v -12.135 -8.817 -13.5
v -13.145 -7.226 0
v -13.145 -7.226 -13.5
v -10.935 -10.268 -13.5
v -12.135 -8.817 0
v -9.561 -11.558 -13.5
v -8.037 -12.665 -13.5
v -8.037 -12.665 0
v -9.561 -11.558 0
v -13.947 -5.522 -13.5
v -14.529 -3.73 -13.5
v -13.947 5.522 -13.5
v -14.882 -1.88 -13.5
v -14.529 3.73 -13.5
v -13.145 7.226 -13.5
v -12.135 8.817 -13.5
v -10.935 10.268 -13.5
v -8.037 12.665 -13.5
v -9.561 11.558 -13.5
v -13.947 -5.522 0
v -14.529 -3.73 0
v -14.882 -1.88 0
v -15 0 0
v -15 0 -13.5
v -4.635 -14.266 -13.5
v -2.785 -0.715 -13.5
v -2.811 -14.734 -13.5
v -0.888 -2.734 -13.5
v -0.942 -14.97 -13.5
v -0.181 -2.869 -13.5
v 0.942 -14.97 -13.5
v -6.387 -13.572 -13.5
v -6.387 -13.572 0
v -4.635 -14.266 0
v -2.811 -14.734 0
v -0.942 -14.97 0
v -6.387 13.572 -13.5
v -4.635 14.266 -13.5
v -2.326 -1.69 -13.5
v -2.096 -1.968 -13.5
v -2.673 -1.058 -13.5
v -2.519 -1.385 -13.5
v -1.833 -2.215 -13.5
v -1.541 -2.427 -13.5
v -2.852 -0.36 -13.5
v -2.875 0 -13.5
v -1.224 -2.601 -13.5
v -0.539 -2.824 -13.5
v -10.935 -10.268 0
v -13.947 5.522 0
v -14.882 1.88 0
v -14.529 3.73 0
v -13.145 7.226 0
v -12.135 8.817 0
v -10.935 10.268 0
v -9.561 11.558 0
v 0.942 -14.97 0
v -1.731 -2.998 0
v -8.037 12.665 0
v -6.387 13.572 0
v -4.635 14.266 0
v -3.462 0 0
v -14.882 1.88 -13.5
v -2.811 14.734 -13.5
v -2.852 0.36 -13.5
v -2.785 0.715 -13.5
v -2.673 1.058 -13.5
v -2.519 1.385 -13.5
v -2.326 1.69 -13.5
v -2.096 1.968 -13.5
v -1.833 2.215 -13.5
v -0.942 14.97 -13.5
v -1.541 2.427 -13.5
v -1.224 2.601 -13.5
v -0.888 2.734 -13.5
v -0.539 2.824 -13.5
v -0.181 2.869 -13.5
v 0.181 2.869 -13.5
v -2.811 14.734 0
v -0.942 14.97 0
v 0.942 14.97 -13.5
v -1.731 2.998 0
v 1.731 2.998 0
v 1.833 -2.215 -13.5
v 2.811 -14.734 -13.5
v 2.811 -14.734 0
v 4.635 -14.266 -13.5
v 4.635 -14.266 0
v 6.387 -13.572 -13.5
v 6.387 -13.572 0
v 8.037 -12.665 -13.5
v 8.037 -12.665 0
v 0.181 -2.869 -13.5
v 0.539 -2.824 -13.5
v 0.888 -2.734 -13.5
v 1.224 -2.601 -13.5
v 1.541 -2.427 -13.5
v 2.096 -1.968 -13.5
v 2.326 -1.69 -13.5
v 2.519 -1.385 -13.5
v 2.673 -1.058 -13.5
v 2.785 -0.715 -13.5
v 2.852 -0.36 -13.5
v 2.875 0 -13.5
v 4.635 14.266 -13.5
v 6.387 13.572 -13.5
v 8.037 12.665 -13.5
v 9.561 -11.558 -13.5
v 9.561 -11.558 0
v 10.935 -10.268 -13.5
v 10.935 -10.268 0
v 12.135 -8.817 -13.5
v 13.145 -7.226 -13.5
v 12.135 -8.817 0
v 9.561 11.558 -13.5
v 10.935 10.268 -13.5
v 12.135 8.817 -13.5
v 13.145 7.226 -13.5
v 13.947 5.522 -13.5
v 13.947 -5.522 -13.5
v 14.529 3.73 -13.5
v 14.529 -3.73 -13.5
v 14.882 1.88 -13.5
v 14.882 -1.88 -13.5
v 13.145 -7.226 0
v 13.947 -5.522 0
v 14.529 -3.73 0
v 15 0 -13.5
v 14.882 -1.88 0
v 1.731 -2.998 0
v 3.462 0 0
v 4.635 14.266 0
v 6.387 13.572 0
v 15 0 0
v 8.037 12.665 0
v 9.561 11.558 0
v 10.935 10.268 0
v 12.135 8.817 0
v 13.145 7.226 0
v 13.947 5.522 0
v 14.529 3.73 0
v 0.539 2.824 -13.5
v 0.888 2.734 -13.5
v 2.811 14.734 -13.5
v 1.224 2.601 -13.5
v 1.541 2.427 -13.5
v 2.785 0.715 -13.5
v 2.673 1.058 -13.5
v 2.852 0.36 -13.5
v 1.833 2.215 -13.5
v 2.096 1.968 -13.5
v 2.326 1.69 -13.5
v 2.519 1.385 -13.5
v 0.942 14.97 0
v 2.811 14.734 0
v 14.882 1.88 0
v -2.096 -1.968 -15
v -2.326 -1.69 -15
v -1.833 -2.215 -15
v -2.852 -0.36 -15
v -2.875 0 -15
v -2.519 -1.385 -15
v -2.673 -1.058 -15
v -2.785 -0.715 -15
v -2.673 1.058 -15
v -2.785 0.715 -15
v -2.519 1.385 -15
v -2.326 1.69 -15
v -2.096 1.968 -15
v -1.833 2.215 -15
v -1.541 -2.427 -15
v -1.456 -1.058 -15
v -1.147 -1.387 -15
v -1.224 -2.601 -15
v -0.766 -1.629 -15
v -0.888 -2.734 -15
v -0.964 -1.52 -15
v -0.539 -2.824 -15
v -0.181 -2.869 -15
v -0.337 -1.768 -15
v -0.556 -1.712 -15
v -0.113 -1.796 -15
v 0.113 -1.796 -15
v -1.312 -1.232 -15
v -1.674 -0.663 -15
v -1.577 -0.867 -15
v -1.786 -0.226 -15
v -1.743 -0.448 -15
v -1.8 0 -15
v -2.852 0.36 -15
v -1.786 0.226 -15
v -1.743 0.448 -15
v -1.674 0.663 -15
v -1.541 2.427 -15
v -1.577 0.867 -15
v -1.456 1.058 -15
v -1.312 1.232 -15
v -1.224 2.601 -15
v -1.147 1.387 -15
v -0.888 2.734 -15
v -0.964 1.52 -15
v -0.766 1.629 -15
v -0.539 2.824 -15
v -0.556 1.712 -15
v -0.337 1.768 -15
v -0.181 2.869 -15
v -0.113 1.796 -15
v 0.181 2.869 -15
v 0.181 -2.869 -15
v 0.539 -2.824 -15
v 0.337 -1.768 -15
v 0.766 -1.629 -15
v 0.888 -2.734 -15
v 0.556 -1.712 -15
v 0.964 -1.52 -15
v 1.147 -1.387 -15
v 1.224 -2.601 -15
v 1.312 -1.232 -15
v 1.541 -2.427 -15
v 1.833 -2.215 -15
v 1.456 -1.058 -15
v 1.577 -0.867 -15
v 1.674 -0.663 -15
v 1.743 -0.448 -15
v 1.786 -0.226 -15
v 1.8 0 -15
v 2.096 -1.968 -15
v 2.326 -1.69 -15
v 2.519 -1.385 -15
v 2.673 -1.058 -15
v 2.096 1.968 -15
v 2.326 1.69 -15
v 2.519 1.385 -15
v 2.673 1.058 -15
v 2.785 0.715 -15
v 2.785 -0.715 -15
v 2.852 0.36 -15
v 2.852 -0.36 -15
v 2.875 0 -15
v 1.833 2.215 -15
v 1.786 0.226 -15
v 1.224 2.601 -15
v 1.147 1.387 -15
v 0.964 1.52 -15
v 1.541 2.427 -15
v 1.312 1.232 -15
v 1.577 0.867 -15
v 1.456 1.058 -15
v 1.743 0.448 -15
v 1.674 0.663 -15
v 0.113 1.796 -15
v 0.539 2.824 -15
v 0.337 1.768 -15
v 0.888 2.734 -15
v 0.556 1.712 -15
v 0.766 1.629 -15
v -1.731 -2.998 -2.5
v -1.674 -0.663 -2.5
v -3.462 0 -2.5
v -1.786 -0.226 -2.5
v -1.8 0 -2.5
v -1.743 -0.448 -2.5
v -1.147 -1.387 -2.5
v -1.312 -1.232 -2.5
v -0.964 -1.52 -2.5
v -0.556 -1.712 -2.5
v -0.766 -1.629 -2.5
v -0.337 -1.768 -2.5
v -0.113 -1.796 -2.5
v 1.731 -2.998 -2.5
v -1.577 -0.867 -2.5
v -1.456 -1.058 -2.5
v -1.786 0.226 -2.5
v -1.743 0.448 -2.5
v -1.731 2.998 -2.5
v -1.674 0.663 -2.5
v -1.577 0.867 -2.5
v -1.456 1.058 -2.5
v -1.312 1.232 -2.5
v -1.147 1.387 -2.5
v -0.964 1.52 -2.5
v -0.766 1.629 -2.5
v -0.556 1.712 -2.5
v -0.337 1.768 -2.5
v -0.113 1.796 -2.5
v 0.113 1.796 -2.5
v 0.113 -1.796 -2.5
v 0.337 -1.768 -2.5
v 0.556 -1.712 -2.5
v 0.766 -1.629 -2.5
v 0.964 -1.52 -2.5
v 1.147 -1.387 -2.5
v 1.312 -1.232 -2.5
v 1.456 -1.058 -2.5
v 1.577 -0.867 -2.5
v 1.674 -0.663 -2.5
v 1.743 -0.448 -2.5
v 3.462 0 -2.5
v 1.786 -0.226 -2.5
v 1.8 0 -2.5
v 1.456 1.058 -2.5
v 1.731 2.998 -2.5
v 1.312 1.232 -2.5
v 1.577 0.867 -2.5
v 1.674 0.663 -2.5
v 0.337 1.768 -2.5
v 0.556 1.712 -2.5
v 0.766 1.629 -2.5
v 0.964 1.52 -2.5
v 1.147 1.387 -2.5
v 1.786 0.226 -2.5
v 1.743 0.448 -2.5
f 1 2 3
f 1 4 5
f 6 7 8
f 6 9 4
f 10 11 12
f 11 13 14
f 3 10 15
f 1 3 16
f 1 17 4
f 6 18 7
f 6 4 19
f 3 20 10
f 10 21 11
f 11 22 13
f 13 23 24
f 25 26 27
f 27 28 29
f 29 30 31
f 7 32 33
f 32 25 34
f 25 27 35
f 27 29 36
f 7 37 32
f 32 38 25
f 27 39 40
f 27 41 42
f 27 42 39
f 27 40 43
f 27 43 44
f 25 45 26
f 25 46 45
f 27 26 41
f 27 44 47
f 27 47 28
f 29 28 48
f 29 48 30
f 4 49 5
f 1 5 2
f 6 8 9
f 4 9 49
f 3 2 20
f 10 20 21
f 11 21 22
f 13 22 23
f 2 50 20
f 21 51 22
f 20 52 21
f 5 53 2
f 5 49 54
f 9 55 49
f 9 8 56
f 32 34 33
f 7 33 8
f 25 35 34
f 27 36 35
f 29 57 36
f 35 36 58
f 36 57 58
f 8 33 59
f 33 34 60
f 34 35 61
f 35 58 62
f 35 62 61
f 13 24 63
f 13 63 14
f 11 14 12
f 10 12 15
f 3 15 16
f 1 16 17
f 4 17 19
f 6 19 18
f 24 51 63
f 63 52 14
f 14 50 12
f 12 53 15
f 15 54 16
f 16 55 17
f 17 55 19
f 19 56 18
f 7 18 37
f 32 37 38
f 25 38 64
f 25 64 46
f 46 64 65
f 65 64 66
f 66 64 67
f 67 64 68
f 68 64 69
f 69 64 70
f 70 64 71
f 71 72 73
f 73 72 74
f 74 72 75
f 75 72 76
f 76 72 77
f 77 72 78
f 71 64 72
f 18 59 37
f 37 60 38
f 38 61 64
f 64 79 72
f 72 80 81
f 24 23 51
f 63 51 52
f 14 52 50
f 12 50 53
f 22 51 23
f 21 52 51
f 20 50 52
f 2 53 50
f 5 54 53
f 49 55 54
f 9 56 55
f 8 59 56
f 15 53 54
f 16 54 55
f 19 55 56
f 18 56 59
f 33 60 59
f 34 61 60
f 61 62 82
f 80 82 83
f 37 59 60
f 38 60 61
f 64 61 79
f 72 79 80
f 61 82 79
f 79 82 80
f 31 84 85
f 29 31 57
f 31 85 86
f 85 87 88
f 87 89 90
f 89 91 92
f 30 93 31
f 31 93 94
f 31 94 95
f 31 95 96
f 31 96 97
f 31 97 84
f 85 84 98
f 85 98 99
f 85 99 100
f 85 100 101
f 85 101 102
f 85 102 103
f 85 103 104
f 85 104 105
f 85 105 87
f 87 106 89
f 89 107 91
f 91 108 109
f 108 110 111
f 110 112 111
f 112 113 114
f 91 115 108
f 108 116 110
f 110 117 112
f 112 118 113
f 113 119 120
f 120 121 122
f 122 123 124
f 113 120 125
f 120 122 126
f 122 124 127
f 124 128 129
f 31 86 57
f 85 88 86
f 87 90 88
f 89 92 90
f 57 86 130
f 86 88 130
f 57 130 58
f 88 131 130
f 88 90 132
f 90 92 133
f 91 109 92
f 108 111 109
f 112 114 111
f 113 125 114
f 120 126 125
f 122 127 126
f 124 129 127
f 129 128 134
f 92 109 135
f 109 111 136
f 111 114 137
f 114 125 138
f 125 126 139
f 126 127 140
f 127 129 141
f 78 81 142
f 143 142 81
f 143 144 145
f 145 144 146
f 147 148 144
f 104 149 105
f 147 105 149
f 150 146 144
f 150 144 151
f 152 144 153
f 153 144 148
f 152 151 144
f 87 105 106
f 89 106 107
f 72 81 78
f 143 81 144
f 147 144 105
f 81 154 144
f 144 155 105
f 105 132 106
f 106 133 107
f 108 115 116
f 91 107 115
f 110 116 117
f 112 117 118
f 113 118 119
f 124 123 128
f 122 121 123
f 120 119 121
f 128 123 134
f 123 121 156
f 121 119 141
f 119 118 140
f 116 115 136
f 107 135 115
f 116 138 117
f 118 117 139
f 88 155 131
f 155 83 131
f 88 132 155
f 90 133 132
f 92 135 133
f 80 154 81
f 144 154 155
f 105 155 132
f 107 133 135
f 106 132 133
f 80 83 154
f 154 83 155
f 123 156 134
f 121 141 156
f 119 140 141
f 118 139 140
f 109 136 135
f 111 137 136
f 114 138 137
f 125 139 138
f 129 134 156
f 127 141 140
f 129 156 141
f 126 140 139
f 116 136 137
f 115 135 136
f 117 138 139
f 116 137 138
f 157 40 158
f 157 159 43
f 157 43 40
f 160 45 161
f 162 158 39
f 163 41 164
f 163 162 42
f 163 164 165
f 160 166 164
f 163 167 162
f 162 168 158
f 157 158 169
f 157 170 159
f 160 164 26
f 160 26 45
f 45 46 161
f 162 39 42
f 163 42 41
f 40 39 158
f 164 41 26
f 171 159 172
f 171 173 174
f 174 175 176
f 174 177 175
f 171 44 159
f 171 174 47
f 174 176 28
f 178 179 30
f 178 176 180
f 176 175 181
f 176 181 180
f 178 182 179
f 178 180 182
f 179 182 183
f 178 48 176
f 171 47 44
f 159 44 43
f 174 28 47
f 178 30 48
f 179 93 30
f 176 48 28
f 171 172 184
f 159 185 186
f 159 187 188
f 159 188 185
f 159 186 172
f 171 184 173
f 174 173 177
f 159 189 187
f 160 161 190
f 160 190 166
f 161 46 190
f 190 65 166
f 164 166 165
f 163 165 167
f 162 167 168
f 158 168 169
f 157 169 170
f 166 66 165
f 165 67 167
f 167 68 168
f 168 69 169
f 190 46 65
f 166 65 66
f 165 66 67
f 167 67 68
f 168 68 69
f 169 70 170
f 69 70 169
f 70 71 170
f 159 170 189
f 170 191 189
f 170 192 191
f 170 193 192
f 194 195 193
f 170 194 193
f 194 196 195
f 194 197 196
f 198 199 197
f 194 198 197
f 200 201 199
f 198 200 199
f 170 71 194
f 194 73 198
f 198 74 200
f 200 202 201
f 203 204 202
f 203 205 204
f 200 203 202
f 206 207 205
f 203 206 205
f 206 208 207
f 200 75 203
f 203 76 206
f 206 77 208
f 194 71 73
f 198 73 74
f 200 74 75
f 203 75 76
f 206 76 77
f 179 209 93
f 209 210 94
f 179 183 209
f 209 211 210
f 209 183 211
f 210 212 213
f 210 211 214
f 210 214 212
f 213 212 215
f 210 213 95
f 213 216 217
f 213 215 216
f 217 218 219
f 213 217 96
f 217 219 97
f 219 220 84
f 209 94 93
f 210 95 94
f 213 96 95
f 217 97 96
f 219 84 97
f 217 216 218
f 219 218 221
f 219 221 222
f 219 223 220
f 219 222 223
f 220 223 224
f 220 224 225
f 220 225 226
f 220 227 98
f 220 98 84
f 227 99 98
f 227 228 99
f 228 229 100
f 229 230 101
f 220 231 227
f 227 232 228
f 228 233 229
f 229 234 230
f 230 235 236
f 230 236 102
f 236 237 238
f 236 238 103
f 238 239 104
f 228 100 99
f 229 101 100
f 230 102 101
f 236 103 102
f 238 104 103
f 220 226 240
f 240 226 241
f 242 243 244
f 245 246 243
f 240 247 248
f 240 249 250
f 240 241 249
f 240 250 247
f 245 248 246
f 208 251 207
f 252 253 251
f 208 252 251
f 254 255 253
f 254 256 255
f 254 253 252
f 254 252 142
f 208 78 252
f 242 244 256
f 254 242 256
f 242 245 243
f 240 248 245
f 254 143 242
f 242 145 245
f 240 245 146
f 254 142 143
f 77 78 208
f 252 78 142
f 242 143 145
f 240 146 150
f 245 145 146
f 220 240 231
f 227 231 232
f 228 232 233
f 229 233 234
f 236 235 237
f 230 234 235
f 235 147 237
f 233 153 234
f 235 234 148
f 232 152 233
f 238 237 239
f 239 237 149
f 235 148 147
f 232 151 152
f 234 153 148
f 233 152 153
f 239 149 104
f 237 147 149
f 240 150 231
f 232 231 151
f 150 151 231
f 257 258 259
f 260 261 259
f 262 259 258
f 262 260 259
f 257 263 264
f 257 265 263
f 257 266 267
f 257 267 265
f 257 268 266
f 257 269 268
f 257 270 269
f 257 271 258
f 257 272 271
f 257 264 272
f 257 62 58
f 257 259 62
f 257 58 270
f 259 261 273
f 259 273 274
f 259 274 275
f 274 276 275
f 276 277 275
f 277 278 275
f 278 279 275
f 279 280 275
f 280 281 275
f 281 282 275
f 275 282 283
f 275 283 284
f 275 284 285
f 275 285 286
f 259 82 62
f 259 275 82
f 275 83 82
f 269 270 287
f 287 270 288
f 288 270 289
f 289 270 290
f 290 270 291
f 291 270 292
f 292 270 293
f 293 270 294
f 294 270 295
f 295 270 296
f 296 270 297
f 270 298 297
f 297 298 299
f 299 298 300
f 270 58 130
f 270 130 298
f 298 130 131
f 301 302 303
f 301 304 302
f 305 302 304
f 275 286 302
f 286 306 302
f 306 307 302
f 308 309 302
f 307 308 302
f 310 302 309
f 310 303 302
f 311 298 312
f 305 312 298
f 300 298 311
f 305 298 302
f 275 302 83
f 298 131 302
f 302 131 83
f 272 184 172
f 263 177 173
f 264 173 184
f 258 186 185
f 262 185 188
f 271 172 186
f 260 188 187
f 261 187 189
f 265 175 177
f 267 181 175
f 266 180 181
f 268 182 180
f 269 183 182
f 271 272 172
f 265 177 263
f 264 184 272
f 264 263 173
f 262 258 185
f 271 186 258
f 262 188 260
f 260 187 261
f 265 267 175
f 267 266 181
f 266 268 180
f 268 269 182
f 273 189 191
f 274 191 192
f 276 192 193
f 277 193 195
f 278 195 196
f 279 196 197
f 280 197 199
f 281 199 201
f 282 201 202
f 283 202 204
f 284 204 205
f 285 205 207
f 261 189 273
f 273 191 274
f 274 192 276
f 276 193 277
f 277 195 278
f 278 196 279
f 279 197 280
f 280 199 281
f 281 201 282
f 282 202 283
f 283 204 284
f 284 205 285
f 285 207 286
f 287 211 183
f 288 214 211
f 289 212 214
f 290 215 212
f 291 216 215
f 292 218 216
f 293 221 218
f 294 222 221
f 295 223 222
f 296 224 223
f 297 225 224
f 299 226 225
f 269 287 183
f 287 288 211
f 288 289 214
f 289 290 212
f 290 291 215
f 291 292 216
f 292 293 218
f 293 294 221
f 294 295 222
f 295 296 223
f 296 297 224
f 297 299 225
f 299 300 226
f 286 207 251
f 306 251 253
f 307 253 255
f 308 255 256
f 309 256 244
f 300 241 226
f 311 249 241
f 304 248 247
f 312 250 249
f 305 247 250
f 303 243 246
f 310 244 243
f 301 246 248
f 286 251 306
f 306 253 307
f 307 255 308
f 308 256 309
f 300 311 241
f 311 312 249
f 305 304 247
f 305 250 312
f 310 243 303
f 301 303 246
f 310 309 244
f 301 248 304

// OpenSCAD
$fn = 50;

difference() {
	union() {
		translate(v = [0, 0, -13.5]) {
			cylinder(h = 13.5, r = 15.0);
		}
		#translate(v = [0, 0, -15.0]) {
			cylinder(h = 15, r = 2.875);
		}
	}
	union() {
		translate(v = [0, 0, 0]) {
			rotate(a = [0, 0, 0]) {
				difference() {
					union() {
						translate(v = [0, 0, -2.5]) {
							linear_extrude(height = 2.5) {
								polygon(points = [[3.4619999999999997, 0.0], [1.7310000000000003, 2.9981799479017264], [-1.7309999999999992, 2.9981799479017264], [-3.4619999999999997, 4.2397272186481365e-16], [-1.7310000000000014, -2.998179947901726], [1.7309999999999977, -2.9981799479017277]]);
							}
						}
					}
					union();
				}
			}
		}
		#translate(v = [0, 0, -100.0]) {
			cylinder(h = 200, r = 1.8);
		}
	}
}
